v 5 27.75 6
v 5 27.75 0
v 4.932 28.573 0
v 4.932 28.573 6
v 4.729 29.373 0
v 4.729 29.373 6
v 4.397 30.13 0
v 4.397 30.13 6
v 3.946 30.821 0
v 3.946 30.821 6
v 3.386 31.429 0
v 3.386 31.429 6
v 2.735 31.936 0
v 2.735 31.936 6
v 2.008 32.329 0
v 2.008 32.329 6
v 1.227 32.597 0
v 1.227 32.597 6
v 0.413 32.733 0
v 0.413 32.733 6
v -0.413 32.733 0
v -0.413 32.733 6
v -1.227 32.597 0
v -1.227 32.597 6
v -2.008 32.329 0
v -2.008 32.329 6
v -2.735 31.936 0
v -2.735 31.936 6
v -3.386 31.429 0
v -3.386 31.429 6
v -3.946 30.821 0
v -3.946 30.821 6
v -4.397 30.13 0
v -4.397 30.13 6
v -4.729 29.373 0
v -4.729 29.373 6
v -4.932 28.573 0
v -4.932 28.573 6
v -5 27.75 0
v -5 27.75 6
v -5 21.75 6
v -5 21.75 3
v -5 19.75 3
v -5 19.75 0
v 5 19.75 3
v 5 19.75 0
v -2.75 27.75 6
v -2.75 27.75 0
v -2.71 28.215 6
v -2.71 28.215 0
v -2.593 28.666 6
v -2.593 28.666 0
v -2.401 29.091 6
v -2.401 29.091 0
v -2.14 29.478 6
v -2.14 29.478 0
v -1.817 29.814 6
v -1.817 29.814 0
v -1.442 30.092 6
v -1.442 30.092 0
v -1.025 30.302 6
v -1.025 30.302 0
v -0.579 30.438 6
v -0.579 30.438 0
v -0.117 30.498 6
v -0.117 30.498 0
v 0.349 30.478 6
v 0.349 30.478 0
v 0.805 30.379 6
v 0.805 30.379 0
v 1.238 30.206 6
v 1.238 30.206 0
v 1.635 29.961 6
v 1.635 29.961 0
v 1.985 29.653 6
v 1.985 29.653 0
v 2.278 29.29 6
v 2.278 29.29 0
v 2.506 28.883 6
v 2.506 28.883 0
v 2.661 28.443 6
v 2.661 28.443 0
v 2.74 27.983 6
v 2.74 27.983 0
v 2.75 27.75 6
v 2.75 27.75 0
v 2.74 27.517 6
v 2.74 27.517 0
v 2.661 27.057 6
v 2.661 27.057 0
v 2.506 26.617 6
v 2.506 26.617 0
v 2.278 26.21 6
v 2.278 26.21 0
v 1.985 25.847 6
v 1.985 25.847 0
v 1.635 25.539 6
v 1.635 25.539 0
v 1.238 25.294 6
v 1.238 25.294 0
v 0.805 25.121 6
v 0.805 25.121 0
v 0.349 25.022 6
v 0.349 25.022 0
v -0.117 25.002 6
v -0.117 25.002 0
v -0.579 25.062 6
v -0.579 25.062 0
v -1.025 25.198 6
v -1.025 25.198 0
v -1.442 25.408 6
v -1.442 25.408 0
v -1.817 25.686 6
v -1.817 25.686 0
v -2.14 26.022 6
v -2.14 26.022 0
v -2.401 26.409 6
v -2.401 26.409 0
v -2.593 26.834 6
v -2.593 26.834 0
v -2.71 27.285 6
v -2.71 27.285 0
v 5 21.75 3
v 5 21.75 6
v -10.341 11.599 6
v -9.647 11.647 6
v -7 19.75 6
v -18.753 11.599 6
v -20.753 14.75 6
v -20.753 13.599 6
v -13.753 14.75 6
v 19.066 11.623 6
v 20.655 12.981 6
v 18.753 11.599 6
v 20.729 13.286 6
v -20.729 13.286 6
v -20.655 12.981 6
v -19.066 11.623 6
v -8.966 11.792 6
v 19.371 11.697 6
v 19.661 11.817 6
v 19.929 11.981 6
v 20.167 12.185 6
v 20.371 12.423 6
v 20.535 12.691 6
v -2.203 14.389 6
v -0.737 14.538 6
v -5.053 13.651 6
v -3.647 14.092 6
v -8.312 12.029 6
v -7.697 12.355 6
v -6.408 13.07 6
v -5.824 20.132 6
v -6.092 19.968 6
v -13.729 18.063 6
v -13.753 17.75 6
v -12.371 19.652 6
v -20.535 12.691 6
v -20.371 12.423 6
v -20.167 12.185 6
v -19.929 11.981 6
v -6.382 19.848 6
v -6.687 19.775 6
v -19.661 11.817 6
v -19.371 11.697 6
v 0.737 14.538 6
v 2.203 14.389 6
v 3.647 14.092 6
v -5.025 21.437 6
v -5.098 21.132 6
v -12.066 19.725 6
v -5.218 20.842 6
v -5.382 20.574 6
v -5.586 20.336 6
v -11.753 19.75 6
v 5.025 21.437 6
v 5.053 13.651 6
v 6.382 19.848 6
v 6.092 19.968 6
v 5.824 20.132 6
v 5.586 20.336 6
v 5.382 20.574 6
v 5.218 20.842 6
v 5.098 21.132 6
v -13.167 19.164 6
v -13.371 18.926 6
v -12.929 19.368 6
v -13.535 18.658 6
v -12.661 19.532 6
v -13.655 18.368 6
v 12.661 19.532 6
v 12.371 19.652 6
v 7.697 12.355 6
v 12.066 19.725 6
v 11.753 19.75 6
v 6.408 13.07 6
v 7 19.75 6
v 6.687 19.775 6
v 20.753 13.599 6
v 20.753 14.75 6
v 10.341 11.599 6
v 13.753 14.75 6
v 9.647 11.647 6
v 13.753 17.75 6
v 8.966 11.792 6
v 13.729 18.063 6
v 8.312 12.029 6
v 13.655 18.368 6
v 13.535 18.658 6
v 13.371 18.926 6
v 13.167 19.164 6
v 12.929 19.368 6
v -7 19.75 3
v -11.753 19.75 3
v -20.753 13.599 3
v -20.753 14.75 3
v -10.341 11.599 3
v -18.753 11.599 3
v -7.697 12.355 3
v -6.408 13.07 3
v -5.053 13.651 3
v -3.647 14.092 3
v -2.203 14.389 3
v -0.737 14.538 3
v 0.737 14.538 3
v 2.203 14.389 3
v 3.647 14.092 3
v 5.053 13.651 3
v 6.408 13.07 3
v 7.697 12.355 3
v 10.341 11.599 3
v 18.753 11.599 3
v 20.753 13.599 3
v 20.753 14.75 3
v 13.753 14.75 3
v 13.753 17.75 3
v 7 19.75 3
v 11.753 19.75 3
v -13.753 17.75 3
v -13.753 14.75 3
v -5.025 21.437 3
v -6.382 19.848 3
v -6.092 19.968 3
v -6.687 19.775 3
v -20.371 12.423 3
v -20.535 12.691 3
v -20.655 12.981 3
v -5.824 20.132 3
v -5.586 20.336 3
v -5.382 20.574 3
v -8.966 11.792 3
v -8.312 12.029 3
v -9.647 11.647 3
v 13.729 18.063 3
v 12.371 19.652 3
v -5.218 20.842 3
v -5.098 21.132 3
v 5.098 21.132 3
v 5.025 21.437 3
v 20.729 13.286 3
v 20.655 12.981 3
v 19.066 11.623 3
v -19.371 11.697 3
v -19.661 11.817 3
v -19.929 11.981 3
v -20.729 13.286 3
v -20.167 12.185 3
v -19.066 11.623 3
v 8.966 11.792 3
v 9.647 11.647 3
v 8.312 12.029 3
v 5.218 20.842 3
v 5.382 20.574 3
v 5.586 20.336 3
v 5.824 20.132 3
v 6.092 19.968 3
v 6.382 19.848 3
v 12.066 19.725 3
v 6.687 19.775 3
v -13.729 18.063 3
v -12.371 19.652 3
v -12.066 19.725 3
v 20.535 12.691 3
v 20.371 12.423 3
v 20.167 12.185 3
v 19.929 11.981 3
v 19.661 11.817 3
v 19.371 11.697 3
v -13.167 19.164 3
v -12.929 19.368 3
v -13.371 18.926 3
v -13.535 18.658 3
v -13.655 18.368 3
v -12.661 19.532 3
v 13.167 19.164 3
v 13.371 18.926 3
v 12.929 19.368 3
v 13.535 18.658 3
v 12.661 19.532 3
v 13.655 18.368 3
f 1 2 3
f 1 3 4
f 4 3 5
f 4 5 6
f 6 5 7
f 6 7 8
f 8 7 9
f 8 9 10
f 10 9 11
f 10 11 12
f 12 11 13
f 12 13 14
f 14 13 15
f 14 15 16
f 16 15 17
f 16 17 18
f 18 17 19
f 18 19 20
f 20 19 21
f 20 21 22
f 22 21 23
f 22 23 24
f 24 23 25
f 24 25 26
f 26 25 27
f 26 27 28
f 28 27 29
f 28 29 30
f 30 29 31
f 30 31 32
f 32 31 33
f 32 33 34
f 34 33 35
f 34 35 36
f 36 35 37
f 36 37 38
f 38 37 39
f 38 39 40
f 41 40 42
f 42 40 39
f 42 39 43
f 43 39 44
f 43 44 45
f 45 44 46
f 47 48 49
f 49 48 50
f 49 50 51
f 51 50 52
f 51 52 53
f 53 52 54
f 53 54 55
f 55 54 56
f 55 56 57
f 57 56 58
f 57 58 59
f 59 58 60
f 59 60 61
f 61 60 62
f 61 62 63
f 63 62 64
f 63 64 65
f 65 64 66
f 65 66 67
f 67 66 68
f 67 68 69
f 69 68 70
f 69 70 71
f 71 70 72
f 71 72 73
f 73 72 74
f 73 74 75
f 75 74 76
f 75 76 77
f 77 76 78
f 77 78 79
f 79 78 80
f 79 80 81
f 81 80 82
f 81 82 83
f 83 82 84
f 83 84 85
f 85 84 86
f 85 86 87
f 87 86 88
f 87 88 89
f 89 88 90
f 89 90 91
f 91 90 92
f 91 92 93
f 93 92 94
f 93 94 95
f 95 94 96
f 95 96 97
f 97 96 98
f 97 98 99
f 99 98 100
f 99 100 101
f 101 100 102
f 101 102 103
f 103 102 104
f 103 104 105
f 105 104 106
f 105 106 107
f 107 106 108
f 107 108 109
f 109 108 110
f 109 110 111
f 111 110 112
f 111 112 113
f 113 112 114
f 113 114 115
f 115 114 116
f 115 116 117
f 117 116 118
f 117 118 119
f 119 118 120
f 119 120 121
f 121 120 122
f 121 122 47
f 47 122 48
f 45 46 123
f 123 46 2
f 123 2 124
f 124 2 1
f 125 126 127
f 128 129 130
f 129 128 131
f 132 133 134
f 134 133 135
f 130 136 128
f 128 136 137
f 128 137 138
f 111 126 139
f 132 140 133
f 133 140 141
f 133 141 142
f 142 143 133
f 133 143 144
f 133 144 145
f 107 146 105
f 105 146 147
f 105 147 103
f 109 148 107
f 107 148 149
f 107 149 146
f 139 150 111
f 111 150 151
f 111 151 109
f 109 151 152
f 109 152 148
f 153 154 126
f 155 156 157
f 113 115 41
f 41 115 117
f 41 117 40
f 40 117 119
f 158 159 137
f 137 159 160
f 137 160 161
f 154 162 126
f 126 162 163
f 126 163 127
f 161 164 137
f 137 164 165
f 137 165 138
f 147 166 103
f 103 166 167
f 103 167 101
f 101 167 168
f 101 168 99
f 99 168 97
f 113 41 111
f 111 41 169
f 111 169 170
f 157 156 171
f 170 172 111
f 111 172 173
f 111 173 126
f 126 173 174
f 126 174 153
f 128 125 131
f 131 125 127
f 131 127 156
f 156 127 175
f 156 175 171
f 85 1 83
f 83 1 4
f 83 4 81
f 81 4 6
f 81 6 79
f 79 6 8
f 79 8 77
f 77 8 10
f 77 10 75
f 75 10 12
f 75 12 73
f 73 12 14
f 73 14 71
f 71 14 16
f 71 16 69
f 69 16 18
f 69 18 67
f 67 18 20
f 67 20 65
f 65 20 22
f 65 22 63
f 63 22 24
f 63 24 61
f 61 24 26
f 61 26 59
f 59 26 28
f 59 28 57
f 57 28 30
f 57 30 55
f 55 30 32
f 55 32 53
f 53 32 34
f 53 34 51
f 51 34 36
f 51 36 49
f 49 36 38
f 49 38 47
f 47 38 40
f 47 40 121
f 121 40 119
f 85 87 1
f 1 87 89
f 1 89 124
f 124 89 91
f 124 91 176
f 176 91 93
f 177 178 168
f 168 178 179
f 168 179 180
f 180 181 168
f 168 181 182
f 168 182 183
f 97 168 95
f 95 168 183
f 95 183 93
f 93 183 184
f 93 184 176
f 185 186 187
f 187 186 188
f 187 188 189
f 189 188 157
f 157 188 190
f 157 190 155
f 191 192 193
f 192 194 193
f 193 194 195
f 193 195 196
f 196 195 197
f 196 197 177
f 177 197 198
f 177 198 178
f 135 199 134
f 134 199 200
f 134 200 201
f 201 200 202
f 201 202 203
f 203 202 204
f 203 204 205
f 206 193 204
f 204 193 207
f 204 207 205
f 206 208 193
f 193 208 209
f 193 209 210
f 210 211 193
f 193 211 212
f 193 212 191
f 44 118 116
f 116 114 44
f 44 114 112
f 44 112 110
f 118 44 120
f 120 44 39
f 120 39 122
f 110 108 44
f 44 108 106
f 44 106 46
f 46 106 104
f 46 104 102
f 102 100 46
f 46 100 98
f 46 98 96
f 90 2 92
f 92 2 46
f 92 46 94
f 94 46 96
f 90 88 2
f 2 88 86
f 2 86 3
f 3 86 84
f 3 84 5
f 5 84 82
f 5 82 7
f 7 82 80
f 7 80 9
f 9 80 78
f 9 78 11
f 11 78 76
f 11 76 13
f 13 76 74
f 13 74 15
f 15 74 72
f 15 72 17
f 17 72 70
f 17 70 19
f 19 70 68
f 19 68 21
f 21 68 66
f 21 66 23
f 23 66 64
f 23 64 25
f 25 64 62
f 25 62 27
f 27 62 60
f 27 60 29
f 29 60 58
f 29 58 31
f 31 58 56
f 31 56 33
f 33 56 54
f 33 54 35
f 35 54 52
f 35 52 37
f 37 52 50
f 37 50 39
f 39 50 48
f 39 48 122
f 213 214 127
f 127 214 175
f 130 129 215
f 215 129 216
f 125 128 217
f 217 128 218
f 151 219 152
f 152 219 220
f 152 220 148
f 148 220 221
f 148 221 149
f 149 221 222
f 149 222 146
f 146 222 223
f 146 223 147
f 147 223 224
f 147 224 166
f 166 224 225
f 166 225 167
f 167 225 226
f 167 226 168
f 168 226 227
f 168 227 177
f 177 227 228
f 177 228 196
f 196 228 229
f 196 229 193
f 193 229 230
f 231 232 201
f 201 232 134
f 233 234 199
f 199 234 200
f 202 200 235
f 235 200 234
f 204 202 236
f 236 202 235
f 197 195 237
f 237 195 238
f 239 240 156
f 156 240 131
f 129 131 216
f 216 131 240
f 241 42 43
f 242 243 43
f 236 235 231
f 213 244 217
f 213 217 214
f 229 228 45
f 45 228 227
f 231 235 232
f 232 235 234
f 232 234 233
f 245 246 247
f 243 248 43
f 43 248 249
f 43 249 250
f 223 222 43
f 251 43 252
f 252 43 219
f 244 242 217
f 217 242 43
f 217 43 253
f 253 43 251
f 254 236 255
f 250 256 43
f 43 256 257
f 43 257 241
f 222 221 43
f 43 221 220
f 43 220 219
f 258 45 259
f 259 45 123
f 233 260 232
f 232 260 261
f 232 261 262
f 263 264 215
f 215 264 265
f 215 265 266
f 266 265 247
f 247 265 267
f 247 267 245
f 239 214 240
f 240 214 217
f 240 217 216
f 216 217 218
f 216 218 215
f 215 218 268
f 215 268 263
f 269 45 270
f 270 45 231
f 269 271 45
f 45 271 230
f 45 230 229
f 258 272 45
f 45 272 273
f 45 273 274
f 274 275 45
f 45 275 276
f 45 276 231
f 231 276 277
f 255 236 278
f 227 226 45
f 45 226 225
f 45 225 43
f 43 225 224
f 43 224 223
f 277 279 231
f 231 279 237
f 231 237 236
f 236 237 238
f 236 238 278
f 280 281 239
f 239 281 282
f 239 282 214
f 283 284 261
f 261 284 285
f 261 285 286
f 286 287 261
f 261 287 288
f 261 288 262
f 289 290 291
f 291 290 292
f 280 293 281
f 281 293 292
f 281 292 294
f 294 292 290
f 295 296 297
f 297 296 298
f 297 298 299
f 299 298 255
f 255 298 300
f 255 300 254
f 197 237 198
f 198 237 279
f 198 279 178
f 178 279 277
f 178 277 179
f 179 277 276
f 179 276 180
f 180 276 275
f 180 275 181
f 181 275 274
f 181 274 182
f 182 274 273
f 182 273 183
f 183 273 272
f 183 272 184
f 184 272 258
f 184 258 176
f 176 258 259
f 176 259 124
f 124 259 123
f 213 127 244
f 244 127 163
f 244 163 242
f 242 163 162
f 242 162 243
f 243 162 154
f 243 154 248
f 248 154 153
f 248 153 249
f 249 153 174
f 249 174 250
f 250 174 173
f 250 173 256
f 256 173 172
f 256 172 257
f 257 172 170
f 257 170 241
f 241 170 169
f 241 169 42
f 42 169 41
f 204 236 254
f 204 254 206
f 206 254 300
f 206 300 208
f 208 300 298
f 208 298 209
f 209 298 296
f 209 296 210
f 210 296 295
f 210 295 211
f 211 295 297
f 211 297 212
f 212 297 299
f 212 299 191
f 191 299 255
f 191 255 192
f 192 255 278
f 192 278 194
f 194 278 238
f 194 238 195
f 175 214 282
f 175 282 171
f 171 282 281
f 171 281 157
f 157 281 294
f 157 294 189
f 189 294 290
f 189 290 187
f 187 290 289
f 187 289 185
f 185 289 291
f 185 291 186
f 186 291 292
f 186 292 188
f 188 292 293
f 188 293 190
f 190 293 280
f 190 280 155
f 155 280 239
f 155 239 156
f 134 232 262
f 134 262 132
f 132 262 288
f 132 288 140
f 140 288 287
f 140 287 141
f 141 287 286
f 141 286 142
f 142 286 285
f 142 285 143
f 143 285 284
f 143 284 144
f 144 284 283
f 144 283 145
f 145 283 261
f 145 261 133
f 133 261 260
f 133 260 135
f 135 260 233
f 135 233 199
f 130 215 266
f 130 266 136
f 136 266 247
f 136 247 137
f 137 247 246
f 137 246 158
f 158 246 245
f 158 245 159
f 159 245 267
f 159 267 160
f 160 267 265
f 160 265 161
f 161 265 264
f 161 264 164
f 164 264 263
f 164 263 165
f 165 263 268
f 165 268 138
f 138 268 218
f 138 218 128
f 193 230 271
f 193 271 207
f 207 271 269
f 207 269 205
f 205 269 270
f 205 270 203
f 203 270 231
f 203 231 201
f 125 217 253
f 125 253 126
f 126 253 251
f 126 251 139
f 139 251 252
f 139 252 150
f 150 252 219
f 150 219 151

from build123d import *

# Parameters (mm, degrees)
SKETCH2_R           = 5
SKETCH2_R_2         = 2.75
BOSS_EXTRUDE1_DEPTH = 6
BOSS_EXTRUDE2_DEPTH = 3
FILLET1_R           = 2
FILLET2_R           = 5


with BuildPart() as part:
    # Sketch2 → Boss-Extrude1 (new body)
    # profile 1 of 2: a face of its own
    with BuildSketch(Plane.XY):
        with Locations((0, 27.75)):
            Circle(SKETCH2_R)
        with Locations((0, 27.75)):
            Circle(SKETCH2_R_2, mode=Mode.SUBTRACT)
    # profile 2 of 2: a face of its own
    with BuildSketch(Plane.XY):
        with BuildLine():
            ThreePointArc((5, 27.75), (0, 22.75), (-5, 27.75))
            Line((-5, 27.75), (-5, 19.75))
            Line((-5, 19.75), (5, 19.75))
            Line((5, 19.75), (5, 27.75))
        make_face()
    extrude(amount=BOSS_EXTRUDE1_DEPTH)

    # Sketch3 → Boss-Extrude2 (add)
    with BuildSketch(Plane.XY.offset(3)):
        with BuildLine():
            Line((5, 19.75), (-5, 19.75))
            Line((-5, 19.75), (-13.753194099, 19.75))
            Line((-13.753194099, 19.75), (-13.753194099, 14.75))
            Line((-13.753194099, 14.75), (-20.753194099, 14.75))
            Line((-20.753194099, 14.75), (-20.753194099, 11.59876127))
            Line((-20.753194099, 11.59876127), (-14.900453075, 11.59876127))
            Line((-14.900453075, 11.59876127), (-8.795188245, 11.59876127))
            ThreePointArc((-8.795188245, 11.59876127), (0, 14.556325061), (8.795188245, 11.59876127))
            Line((8.795188245, 11.59876127), (20.753194099, 11.59876127))
            Line((20.753194099, 11.59876127), (20.753194099, 14.75))
            Line((20.753194099, 14.75), (13.753194099, 14.75))
            Line((13.753194099, 14.75), (13.753194099, 19.75))
            Line((13.753194099, 19.75), (5, 19.75))
        make_face()
    extrude(amount=BOSS_EXTRUDE2_DEPTH)

    # Fillet1
    fillet1_edges = [part.edges().sort_by_distance(p)[0] for p in [
        (5, 19.75, 4.5),
        (-5, 19.75, 4.5),
        (-20.753194099, 11.59876127, 4.5),
        (20.753194099, 11.59876127, 4.5),
        (13.753194099, 19.75, 4.5),
        (-13.753194099, 19.75, 4.5),
    ]]
    fillet(fillet1_edges, radius=FILLET1_R)

    # Fillet2
    fillet2_edges = [part.edges().sort_by_distance(p)[0] for p in [
        (-8.795188245, 11.59876127, 4.5),
        (8.795188245, 11.59876127, 4.5),
    ]]
    fillet(fillet2_edges, radius=FILLET2_R)


solid = part.part
